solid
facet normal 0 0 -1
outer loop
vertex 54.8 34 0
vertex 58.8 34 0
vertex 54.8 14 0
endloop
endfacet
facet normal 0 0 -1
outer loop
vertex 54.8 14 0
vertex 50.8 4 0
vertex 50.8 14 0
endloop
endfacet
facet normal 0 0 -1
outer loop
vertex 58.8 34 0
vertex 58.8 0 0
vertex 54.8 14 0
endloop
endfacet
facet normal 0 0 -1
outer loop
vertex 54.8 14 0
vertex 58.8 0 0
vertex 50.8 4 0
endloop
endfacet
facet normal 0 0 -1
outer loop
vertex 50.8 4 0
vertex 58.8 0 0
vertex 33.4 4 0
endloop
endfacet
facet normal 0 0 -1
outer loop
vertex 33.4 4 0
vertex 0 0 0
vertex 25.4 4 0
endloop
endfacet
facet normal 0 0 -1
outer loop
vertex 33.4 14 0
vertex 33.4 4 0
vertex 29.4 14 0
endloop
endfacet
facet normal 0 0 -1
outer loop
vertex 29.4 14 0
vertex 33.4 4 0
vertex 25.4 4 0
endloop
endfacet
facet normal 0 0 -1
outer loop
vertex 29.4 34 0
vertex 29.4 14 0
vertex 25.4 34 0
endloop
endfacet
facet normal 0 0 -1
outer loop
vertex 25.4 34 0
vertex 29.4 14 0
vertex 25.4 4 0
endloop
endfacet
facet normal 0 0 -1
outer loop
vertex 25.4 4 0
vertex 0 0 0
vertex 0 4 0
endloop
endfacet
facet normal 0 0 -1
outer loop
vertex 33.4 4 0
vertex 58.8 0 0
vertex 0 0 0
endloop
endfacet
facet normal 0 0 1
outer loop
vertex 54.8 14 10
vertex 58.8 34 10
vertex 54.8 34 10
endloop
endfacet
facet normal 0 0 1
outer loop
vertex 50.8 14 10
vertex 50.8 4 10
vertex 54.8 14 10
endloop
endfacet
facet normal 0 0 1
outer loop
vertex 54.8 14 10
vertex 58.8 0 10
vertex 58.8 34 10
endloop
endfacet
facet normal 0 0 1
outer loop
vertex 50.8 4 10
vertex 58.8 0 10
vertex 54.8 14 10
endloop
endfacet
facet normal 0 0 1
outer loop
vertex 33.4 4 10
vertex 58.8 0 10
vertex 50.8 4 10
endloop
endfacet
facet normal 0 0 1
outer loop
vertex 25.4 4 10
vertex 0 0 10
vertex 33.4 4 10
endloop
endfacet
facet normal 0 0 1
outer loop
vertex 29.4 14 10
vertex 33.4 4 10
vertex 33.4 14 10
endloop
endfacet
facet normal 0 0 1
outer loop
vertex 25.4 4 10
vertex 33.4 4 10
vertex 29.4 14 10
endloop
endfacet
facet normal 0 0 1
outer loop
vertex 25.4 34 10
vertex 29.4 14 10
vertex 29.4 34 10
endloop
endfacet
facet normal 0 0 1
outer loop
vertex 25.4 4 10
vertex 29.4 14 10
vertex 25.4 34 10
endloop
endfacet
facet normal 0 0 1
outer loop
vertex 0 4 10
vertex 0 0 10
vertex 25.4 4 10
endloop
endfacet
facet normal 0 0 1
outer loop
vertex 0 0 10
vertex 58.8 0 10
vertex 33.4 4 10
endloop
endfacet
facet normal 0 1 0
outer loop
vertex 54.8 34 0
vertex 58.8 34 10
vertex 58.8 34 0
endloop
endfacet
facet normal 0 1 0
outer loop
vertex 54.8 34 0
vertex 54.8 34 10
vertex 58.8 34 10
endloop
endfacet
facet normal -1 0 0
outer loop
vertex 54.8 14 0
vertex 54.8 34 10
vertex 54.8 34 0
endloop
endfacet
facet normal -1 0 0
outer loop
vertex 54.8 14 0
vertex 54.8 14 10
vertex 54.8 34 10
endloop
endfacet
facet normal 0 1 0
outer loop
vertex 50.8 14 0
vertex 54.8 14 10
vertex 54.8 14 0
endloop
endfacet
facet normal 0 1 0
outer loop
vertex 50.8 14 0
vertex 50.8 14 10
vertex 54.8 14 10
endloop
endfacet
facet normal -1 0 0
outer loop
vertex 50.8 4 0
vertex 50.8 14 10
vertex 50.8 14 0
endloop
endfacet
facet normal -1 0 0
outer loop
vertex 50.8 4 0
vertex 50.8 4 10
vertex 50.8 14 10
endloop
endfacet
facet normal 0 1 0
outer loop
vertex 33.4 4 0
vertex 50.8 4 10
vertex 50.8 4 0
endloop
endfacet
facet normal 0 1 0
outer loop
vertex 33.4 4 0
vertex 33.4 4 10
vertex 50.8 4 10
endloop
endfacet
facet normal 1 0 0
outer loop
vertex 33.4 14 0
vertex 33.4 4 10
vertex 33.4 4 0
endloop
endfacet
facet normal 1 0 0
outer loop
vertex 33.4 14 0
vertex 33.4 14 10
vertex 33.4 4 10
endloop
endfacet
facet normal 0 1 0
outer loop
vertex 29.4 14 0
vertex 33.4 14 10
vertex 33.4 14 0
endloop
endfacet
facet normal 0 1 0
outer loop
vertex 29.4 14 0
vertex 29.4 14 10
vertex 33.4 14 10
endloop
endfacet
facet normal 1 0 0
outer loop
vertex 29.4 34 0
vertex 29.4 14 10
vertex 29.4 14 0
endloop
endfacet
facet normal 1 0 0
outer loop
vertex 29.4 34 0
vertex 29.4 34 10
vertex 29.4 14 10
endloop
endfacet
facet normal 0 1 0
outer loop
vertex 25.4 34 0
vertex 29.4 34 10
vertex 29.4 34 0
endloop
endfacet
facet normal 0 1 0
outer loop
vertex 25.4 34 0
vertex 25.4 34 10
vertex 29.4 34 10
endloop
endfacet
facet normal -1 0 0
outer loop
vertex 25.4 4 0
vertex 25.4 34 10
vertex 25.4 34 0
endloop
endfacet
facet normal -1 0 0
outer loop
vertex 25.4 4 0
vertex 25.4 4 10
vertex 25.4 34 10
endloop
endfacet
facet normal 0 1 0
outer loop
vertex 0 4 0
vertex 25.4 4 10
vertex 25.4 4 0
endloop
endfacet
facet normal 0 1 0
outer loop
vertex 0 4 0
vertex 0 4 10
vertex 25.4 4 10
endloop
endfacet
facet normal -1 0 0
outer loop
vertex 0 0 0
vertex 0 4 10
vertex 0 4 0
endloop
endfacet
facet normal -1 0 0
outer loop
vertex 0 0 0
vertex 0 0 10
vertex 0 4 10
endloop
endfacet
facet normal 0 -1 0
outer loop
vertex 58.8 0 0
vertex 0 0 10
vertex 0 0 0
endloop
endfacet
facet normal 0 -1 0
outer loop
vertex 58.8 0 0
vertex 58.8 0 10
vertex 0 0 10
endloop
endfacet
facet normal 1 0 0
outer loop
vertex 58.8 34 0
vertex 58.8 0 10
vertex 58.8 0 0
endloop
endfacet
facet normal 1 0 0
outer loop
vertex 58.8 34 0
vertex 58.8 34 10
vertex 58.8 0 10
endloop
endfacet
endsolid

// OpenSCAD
swh = 25.4; // switch height
wlt = 4; // wall thickness
ftl = swh; // foot len
plug_height = 10;
nubsi_height = wlt + plug_height;
nubsi_width = 4;
tray_wall_height = nubsi_height + 20;

linear_extrude(height=10)
polygon(points=[
[0,0],
[0,wlt],
[ftl,wlt],
[ftl,tray_wall_height],
[ftl+wlt,tray_wall_height],
[ftl+wlt,nubsi_height],
[ftl+wlt+nubsi_width,nubsi_height],
[ftl+wlt+nubsi_width,wlt],
[ftl+wlt+swh-nubsi_width,wlt],
[ftl+wlt+swh-nubsi_width,wlt],
[ftl+wlt+swh-nubsi_width,nubsi_height],
[ftl+wlt+swh,nubsi_height],
[ftl+wlt+swh,tray_wall_height],
[ftl+wlt+swh+wlt,tray_wall_height],
[ftl+wlt+swh+wlt,0],
]);
